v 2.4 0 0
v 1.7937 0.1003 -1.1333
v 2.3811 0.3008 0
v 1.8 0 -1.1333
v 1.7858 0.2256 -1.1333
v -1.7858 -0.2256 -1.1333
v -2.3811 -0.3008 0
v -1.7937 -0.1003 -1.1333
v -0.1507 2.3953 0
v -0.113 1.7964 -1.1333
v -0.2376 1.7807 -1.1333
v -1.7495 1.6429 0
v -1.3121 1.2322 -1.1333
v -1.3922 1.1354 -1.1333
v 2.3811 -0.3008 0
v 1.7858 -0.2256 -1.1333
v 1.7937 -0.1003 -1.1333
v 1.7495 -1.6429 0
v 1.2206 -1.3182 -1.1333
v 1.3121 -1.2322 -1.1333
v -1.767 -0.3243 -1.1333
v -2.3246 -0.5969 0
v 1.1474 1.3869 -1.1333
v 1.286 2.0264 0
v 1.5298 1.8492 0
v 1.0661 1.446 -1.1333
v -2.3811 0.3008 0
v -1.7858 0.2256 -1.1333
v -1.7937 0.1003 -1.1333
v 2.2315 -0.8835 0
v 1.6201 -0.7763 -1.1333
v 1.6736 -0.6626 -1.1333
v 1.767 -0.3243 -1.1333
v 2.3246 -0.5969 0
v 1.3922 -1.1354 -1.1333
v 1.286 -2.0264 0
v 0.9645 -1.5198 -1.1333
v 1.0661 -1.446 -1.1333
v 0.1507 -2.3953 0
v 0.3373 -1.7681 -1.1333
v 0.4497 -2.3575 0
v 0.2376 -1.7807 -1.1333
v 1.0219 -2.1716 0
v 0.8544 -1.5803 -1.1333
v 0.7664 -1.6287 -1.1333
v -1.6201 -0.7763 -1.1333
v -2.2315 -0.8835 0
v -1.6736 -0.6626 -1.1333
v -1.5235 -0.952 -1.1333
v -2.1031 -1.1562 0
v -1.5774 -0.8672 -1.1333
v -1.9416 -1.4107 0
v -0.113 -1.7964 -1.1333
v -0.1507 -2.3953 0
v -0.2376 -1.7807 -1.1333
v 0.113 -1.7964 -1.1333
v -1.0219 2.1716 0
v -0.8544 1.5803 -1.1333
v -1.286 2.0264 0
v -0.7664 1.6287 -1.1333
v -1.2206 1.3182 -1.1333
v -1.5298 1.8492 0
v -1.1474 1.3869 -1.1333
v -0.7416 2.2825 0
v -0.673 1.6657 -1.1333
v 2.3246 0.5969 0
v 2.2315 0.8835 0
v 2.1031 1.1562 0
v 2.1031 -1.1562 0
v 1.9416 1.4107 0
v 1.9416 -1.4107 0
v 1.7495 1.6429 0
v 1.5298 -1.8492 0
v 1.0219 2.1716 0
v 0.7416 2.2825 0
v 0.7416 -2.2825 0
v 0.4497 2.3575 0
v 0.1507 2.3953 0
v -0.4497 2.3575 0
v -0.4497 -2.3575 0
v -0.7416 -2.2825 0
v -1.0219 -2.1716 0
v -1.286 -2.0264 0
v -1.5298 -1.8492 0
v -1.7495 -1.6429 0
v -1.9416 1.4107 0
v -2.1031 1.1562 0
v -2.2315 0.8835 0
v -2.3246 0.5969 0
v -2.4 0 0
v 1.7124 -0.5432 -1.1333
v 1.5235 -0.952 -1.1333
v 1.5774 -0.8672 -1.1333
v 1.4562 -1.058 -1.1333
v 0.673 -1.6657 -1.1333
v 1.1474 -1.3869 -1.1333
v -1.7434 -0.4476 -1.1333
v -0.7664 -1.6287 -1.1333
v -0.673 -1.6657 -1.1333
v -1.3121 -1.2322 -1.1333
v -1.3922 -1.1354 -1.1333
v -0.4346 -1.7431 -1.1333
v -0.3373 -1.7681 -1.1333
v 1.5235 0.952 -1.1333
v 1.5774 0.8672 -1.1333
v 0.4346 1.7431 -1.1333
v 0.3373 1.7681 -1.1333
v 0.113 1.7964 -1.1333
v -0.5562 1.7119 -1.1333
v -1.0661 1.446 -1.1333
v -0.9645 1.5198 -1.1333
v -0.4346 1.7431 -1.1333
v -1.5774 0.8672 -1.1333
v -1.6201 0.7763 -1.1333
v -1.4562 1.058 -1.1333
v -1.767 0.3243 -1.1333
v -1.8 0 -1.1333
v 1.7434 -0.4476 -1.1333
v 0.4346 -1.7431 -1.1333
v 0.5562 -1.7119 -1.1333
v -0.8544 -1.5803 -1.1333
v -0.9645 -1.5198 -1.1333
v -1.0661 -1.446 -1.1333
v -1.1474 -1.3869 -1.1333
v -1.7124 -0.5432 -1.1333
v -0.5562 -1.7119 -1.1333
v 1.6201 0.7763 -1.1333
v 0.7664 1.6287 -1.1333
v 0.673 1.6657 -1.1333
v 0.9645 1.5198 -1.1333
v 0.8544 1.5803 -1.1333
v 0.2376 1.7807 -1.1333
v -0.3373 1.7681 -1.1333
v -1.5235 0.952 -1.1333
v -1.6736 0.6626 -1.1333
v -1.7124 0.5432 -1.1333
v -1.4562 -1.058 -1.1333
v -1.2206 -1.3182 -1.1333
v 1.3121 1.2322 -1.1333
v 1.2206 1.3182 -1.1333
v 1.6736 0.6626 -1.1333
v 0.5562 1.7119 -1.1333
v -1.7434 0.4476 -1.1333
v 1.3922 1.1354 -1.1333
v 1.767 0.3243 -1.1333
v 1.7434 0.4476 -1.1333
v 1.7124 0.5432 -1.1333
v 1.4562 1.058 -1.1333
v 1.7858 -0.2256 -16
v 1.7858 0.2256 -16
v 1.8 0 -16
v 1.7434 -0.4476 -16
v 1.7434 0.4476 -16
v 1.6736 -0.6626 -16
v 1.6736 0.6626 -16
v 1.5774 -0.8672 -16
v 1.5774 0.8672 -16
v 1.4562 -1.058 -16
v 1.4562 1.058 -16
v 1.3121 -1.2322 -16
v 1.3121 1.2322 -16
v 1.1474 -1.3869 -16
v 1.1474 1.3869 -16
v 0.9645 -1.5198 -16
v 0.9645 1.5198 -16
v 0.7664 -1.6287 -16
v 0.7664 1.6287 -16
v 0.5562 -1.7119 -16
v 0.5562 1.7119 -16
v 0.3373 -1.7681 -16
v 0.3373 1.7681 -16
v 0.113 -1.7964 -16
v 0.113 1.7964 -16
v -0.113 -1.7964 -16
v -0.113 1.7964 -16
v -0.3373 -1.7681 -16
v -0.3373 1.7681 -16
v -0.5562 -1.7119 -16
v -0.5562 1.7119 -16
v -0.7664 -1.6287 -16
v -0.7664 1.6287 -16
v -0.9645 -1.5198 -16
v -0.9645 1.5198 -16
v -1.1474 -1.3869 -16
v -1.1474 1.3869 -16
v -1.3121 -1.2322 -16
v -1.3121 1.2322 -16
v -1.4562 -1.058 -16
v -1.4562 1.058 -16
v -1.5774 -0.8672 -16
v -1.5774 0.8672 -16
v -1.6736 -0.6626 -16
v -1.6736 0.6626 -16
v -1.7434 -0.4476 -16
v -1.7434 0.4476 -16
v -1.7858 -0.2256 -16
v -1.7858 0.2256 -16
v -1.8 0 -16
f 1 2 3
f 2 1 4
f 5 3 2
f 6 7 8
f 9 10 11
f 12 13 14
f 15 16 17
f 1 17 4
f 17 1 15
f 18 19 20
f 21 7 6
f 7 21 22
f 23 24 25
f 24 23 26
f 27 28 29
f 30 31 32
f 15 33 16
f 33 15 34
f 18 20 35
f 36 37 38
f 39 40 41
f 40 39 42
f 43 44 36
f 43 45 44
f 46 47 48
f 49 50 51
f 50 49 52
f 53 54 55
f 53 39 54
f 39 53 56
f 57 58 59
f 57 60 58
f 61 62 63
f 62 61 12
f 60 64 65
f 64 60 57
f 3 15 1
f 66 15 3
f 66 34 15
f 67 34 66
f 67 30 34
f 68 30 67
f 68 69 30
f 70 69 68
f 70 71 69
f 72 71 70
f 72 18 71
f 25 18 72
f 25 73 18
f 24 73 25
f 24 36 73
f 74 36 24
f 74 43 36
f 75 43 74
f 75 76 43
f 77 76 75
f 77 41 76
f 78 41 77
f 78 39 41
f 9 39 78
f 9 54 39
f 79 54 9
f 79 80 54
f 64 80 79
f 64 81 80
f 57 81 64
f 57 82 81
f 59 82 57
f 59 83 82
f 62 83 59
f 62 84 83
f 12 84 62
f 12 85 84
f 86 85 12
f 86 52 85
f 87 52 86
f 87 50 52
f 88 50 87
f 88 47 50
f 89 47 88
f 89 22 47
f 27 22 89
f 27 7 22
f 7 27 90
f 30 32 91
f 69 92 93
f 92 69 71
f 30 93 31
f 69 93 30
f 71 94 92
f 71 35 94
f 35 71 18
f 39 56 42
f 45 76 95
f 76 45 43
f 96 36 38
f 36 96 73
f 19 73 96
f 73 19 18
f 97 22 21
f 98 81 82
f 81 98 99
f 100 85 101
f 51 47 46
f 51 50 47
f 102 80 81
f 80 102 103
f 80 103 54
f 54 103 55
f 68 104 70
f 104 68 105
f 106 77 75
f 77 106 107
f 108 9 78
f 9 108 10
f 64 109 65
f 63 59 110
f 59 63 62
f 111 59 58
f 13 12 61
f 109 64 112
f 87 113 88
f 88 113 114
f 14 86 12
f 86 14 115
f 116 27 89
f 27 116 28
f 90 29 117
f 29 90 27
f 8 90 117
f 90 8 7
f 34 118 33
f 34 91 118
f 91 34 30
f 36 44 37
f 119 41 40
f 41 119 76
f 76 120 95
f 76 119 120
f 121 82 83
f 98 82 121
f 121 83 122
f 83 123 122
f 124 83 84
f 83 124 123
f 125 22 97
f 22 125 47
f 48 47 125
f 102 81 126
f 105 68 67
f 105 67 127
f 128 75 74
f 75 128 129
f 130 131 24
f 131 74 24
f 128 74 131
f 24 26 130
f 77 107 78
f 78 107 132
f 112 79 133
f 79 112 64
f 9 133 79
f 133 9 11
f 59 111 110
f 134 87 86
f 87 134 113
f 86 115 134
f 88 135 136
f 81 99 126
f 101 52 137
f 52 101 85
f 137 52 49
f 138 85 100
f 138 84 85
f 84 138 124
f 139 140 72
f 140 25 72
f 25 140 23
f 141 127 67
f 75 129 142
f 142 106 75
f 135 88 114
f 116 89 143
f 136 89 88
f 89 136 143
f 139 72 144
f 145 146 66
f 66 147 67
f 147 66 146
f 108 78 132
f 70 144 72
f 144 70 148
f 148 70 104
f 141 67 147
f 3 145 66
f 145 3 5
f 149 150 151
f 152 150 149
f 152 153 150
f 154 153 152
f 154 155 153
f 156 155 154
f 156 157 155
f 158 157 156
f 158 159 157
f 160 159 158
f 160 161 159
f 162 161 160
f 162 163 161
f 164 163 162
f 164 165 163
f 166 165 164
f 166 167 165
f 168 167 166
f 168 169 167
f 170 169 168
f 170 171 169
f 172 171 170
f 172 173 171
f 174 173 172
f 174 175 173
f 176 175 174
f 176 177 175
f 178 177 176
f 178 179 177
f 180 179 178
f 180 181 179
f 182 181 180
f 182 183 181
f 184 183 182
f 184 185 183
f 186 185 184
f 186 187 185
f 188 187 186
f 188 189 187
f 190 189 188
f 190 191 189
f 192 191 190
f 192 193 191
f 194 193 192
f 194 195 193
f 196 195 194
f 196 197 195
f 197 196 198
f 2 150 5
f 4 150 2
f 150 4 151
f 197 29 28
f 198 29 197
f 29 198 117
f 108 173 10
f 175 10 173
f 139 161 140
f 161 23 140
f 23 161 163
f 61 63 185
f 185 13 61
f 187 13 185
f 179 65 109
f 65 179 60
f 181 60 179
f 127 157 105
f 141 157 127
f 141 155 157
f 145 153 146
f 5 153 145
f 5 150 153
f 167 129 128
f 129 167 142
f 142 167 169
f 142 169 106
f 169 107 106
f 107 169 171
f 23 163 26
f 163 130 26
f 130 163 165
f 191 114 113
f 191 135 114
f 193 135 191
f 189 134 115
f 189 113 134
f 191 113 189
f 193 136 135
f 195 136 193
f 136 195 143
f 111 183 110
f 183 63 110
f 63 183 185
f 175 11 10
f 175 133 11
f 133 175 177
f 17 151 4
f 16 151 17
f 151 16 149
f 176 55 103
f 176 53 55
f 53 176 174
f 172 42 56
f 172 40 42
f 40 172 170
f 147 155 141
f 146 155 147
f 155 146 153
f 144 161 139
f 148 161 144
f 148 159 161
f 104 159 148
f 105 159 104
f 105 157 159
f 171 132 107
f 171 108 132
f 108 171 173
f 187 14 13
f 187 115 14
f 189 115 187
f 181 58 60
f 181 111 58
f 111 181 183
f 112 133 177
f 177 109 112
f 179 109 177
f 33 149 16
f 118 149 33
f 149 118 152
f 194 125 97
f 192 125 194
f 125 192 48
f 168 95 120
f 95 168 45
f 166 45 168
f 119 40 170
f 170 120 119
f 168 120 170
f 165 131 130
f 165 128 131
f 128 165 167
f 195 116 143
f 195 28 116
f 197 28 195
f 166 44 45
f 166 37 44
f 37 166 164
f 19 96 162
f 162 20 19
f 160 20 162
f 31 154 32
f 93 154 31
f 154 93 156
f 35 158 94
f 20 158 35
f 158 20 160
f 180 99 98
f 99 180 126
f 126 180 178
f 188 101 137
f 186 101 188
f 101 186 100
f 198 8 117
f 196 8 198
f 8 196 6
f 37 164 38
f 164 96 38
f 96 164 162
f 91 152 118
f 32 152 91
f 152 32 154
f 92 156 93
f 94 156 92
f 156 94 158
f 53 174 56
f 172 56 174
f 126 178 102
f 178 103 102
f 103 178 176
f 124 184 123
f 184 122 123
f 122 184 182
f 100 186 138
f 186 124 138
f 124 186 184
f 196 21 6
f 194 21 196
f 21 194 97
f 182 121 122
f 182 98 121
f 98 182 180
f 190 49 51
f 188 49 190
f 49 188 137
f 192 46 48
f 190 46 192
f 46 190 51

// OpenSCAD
$fn = 50;


difference() {
	union() {
		translate(v = [0, 0, 0]) {
			rotate(a = [0, 0, 0]) {
				difference() {
					union() {
						translate(v = [0, 0, -1.7000000000]) {
							cylinder(h = 1.7000000000, r1 = 1.5000000000, r2 = 2.4000000000);
						}
						translate(v = [0, 0, -16.0000000000]) {
							cylinder(h = 16, r = 1.5000000000);
						}
						translate(v = [0, 0, -16.0000000000]) {
							cylinder(h = 16, r = 1.8000000000);
						}
						translate(v = [0, 0, -16.0000000000]) {
							cylinder(h = 16, r = 1.5000000000);
						}
					}
					union();
				}
			}
		}
	}
	union();
}
